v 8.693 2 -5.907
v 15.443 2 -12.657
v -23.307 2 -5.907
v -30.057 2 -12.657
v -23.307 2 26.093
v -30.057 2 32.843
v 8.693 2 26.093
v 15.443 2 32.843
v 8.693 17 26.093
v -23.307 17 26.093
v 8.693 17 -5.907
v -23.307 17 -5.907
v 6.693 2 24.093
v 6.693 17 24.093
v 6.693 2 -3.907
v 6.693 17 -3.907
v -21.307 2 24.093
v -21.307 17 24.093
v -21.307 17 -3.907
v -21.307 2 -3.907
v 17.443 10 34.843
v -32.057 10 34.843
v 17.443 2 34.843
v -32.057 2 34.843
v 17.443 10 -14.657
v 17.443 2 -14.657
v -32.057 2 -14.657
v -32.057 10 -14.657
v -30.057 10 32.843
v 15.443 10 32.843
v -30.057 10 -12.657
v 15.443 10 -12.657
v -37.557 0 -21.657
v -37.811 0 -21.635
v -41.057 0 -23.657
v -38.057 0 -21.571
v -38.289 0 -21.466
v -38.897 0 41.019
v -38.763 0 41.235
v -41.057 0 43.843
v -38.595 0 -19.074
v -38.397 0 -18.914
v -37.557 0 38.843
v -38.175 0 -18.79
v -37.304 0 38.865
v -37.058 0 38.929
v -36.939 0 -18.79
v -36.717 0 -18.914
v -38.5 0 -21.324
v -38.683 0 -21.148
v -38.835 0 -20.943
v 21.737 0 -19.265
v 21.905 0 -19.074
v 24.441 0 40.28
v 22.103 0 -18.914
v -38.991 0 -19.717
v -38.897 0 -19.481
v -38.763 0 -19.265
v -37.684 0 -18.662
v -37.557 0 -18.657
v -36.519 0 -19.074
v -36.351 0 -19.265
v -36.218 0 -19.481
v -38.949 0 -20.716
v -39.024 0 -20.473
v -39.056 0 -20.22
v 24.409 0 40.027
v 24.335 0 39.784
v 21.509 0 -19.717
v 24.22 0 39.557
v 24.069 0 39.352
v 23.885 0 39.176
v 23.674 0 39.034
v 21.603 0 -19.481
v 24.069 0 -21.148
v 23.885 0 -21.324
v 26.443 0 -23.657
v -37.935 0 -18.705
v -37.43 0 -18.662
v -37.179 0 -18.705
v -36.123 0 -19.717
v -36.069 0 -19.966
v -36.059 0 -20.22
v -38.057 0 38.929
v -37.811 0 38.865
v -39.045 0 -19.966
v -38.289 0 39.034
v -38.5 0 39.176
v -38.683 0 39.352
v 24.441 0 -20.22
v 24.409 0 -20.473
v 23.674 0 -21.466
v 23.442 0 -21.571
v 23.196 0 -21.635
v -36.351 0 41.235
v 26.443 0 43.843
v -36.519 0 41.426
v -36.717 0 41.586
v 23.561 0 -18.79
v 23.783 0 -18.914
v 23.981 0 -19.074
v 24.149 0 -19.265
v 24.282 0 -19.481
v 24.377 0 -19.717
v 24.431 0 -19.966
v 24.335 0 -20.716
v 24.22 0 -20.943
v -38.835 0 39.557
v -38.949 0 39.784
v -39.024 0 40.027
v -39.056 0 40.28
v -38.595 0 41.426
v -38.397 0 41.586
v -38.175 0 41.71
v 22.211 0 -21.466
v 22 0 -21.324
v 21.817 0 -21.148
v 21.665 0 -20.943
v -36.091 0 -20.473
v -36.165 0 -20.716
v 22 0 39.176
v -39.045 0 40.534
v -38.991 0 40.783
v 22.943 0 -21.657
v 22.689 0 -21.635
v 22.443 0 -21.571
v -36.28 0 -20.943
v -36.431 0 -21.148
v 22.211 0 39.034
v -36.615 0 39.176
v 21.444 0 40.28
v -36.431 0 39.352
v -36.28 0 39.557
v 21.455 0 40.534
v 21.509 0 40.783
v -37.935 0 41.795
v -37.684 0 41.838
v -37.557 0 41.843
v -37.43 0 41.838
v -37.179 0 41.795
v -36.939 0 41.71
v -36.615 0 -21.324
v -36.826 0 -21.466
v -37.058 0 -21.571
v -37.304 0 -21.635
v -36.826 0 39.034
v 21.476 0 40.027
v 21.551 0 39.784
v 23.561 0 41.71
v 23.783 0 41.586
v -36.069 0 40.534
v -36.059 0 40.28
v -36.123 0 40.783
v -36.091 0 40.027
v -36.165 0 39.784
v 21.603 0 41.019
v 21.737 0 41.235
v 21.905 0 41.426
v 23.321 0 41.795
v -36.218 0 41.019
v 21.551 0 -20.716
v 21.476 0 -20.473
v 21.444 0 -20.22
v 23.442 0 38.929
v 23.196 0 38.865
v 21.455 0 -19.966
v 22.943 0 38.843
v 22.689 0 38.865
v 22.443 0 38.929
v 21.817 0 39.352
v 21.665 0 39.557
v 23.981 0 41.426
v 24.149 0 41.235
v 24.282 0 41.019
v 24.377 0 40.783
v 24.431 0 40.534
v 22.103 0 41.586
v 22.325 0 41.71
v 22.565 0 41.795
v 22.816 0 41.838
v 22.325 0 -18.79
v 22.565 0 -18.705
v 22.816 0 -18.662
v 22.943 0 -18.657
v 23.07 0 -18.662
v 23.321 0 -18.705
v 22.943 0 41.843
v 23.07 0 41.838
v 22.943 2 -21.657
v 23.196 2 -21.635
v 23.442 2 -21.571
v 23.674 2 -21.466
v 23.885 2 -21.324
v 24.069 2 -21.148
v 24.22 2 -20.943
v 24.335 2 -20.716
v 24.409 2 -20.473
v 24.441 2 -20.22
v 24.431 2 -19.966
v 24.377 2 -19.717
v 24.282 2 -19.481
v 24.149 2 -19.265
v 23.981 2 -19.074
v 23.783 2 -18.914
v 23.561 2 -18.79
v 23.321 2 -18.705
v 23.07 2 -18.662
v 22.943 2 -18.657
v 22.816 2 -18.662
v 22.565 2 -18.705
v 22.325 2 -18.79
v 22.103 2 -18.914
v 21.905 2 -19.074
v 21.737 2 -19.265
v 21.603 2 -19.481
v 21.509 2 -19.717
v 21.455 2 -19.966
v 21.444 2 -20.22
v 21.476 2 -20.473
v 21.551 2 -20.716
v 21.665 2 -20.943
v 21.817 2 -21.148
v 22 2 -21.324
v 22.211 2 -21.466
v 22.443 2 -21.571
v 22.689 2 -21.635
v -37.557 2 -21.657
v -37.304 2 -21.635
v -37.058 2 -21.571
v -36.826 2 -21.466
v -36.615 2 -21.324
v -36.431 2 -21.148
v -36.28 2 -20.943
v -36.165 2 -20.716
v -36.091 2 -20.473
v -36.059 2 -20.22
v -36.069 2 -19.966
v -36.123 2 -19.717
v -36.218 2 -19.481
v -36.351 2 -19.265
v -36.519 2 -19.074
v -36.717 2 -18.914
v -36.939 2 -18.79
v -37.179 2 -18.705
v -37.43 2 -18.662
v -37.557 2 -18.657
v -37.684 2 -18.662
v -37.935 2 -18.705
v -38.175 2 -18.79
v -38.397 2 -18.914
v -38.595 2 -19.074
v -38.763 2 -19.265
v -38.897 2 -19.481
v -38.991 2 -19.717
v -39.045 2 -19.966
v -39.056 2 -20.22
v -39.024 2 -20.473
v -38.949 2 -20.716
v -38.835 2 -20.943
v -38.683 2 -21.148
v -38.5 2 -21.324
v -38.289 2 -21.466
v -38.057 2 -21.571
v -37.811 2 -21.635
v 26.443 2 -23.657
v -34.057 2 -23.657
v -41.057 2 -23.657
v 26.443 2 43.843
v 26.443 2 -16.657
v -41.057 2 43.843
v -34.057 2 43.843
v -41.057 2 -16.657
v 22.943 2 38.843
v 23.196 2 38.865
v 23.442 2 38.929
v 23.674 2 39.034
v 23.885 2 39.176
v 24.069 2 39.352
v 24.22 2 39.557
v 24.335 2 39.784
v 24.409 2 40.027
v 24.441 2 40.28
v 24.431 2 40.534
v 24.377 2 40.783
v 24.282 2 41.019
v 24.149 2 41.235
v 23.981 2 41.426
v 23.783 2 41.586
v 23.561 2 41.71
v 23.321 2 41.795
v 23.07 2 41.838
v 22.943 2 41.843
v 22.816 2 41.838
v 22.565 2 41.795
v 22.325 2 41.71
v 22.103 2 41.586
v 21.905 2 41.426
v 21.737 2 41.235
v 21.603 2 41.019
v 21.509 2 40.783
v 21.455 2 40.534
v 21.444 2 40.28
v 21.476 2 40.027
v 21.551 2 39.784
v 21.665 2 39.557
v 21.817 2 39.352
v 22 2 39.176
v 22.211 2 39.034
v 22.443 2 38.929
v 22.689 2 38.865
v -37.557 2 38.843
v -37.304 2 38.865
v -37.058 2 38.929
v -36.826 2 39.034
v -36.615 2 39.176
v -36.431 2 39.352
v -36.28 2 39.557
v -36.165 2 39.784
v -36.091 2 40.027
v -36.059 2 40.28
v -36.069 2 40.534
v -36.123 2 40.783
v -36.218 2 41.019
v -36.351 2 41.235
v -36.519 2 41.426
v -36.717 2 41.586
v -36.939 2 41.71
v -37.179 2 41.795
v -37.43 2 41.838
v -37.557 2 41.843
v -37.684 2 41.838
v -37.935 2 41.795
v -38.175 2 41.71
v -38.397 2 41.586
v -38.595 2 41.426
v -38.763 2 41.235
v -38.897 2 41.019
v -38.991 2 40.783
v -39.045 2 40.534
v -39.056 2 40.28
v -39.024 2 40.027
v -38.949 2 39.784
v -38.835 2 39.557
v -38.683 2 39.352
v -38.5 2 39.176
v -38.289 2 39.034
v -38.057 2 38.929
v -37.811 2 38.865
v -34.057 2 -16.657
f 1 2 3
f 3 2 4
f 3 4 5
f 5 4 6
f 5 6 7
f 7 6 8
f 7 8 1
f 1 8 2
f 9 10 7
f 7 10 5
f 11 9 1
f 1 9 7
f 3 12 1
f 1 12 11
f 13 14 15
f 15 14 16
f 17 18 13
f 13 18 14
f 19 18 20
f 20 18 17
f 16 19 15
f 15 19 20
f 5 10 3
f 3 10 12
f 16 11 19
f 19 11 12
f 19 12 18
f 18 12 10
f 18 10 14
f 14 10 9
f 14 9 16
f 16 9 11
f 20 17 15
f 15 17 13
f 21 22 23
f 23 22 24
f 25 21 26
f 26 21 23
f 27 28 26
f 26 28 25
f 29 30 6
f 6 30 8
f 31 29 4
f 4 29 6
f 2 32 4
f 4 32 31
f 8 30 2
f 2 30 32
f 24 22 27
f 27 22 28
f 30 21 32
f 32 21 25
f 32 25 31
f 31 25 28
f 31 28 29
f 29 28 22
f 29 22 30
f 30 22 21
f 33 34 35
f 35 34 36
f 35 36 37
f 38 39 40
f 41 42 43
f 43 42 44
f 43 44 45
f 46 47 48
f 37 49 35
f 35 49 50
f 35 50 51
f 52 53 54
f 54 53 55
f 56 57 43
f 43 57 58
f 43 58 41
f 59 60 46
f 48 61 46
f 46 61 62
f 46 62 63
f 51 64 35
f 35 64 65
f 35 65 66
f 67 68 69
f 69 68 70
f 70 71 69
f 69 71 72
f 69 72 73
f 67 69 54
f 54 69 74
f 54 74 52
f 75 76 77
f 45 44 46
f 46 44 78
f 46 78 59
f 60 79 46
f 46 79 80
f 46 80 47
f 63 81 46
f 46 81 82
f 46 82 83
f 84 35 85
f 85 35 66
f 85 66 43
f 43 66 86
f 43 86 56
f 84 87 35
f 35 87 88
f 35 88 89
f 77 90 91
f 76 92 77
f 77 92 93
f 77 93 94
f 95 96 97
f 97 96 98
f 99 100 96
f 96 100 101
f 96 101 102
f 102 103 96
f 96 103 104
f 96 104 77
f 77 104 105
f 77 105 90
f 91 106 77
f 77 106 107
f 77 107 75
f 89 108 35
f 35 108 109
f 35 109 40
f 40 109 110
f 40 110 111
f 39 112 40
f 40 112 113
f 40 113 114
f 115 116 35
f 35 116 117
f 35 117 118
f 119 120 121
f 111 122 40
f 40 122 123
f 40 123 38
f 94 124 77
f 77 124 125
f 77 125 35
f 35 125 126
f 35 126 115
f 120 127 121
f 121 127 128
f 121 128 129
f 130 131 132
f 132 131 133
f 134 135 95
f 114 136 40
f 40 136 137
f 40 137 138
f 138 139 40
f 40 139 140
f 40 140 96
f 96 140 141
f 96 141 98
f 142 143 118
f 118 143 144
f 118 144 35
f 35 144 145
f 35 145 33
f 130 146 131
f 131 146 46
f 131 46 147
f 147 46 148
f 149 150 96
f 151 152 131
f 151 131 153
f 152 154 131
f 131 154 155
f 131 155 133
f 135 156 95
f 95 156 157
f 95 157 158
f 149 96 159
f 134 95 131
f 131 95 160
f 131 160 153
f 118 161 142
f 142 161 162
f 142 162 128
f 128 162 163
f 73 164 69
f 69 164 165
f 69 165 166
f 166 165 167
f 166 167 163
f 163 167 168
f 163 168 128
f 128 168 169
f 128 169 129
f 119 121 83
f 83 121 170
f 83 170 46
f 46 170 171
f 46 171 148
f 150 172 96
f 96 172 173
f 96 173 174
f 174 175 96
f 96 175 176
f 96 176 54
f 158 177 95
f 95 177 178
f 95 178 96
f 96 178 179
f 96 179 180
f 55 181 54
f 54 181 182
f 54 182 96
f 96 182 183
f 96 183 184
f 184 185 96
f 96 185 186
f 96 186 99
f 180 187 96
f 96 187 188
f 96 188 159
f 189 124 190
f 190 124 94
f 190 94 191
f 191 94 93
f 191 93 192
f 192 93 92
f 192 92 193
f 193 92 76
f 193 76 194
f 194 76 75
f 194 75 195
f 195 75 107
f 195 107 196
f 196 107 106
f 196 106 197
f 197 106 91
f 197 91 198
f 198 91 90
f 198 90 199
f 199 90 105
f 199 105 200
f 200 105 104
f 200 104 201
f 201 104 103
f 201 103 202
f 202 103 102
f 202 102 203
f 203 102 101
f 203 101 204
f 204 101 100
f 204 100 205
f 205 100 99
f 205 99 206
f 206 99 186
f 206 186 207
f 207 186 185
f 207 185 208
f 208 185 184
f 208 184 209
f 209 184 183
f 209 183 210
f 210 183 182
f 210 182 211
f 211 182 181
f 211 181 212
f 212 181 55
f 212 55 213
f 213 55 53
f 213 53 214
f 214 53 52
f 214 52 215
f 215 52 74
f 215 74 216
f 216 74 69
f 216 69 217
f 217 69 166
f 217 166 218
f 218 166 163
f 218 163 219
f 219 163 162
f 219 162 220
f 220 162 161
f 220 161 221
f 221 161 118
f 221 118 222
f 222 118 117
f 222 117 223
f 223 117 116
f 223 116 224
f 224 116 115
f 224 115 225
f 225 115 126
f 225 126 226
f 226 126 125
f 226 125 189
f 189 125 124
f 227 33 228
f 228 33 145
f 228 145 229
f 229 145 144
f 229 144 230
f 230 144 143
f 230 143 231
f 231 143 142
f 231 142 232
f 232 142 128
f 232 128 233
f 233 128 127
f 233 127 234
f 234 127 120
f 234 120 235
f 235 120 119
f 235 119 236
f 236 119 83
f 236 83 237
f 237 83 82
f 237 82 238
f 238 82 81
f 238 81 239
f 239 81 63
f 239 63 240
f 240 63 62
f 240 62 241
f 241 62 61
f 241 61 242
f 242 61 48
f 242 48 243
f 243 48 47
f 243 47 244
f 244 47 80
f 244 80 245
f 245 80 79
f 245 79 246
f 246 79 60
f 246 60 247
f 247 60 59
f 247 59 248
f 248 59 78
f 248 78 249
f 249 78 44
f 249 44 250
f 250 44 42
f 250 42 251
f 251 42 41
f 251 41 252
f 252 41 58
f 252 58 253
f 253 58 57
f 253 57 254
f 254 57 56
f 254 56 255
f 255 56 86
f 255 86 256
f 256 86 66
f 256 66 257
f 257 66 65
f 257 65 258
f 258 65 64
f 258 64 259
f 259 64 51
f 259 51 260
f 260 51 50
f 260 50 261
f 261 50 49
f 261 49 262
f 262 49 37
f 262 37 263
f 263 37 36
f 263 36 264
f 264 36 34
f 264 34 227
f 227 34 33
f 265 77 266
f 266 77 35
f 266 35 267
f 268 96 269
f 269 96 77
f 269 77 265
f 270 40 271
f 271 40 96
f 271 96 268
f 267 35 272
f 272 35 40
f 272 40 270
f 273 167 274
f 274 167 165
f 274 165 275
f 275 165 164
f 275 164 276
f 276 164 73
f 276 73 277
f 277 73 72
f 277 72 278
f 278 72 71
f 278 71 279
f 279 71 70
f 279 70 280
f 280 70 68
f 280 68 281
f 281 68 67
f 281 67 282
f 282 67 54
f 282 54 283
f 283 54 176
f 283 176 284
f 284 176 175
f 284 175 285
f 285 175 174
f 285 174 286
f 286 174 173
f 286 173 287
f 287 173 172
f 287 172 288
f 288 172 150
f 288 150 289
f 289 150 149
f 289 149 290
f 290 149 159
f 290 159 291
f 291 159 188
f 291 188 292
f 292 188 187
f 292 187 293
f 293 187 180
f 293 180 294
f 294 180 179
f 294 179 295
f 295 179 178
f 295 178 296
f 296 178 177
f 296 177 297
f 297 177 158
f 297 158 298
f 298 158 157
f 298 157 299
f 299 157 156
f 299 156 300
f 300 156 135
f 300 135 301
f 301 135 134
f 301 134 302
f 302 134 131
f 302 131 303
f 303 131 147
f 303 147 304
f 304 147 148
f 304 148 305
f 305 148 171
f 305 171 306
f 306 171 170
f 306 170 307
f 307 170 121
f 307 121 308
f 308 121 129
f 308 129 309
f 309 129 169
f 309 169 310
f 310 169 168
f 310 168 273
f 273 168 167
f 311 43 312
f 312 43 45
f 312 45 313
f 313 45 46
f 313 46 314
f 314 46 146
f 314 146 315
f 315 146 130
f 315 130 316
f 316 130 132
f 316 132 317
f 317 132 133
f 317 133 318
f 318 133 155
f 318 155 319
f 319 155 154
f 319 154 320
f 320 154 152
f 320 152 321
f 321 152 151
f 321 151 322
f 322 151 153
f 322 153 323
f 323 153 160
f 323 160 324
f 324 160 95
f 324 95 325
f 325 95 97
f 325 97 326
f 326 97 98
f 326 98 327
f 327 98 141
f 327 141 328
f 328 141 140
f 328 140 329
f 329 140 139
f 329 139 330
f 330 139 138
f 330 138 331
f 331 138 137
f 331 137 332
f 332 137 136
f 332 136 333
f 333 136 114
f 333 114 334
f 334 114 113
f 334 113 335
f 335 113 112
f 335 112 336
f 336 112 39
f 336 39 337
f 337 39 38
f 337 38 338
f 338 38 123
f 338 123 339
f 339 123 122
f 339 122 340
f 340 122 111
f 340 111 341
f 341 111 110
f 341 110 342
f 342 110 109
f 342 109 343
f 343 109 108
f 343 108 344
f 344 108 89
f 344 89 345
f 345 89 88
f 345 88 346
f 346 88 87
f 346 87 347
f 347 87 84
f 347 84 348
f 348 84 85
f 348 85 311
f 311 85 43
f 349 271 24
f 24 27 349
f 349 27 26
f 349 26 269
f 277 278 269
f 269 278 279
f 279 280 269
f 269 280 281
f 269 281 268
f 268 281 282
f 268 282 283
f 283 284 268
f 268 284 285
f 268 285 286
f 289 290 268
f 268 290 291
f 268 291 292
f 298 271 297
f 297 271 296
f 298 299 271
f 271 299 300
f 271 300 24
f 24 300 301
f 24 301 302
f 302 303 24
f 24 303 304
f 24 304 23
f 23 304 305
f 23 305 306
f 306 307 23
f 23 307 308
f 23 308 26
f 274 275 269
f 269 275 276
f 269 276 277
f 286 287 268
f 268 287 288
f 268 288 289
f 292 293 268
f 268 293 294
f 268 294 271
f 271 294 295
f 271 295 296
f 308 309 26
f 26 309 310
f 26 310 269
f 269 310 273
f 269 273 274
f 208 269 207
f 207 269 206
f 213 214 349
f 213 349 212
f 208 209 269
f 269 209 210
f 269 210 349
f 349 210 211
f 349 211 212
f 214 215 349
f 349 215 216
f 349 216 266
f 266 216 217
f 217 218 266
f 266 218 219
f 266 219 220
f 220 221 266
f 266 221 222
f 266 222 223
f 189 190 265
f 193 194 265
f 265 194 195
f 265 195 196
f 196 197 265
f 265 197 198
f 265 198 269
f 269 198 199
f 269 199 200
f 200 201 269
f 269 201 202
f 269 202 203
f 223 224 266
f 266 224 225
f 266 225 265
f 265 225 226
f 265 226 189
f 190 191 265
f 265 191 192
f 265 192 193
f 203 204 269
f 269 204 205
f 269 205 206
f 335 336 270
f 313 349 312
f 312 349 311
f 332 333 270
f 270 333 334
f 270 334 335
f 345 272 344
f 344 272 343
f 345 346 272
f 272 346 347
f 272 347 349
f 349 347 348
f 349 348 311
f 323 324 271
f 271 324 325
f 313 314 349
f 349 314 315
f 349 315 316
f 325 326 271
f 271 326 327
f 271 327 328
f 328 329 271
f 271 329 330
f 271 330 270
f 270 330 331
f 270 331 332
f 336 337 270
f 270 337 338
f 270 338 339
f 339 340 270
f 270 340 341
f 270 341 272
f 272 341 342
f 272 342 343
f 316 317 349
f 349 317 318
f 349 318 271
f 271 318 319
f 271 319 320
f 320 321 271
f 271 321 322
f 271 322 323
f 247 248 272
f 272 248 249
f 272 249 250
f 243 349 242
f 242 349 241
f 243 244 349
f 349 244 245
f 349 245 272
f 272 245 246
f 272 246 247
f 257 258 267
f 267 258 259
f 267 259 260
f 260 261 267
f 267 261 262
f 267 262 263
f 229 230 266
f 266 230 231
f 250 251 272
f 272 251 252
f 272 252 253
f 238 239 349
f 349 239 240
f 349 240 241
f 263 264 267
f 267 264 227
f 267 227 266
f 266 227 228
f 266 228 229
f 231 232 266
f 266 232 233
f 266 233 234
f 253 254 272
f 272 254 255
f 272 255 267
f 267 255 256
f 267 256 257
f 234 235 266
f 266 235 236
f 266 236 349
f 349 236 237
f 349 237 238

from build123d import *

# Parameters (mm, degrees)
SKETCH2_W           = 67.5
SKETCH2_H           = 67.5
SKETCH2_R           = 1.5
BOSS_EXTRUDE3_DEPTH = 2
SKETCH1_W           = 32
SKETCH1_H           = 32
SKETCH1_W_2         = 28
SKETCH1_H_2         = 28
BOSS_EXTRUDE4_DEPTH = 17
SKETCH1_6_W         = 49.5
SKETCH1_6_H         = 49.5
SKETCH1_6_W_2       = 45.5
SKETCH1_6_H_2       = 45.5
BOSS_EXTRUDE5_DEPTH = 10


with BuildPart() as part:
    # Sketch2 → Boss-Extrude3 (new body)
    with BuildSketch(Plane(origin=(0, 0, 0), x_dir=(1, 0, 0), z_dir=(0, 1, 0))):
        with Locations((-7.30721393, -10.093283582)):
            Rectangle(SKETCH2_W, SKETCH2_H)
        with Locations((-37.55721393, -40.343283582)):
            Circle(SKETCH2_R, mode=Mode.SUBTRACT)
        with Locations((22.94278607, -40.343283582)):
            Circle(SKETCH2_R, mode=Mode.SUBTRACT)
        with Locations((-37.55721393, 20.156716418)):
            Circle(SKETCH2_R, mode=Mode.SUBTRACT)
        with Locations((22.94278607, 20.156716418)):
            Circle(SKETCH2_R, mode=Mode.SUBTRACT)
    extrude(amount=BOSS_EXTRUDE3_DEPTH)

    # Sketch1 → Boss-Extrude4 (add)
    with BuildSketch(Plane(origin=(0, 0, 0), x_dir=(1, 0, 0), z_dir=(0, 1, 0))):
        with Locations((-7.30721393, -10.093283582)):
            Rectangle(SKETCH1_W, SKETCH1_H)
        with Locations((-7.30721393, -10.093283582)):
            Rectangle(SKETCH1_W_2, SKETCH1_H_2, mode=Mode.SUBTRACT)
    extrude(amount=BOSS_EXTRUDE4_DEPTH)

    # Sketch1<6> → Boss-Extrude5 (add)
    with BuildSketch(Plane(origin=(0, 0, 0), x_dir=(1, 0, 0), z_dir=(0, 1, 0))):
        with Locations((-7.30721393, -10.093283582)):
            Rectangle(SKETCH1_6_W, SKETCH1_6_H)
        with Locations((-7.30721393, -10.093283582)):
            Rectangle(SKETCH1_6_W_2, SKETCH1_6_H_2, mode=Mode.SUBTRACT)
    extrude(amount=BOSS_EXTRUDE5_DEPTH)


solid = part.part
